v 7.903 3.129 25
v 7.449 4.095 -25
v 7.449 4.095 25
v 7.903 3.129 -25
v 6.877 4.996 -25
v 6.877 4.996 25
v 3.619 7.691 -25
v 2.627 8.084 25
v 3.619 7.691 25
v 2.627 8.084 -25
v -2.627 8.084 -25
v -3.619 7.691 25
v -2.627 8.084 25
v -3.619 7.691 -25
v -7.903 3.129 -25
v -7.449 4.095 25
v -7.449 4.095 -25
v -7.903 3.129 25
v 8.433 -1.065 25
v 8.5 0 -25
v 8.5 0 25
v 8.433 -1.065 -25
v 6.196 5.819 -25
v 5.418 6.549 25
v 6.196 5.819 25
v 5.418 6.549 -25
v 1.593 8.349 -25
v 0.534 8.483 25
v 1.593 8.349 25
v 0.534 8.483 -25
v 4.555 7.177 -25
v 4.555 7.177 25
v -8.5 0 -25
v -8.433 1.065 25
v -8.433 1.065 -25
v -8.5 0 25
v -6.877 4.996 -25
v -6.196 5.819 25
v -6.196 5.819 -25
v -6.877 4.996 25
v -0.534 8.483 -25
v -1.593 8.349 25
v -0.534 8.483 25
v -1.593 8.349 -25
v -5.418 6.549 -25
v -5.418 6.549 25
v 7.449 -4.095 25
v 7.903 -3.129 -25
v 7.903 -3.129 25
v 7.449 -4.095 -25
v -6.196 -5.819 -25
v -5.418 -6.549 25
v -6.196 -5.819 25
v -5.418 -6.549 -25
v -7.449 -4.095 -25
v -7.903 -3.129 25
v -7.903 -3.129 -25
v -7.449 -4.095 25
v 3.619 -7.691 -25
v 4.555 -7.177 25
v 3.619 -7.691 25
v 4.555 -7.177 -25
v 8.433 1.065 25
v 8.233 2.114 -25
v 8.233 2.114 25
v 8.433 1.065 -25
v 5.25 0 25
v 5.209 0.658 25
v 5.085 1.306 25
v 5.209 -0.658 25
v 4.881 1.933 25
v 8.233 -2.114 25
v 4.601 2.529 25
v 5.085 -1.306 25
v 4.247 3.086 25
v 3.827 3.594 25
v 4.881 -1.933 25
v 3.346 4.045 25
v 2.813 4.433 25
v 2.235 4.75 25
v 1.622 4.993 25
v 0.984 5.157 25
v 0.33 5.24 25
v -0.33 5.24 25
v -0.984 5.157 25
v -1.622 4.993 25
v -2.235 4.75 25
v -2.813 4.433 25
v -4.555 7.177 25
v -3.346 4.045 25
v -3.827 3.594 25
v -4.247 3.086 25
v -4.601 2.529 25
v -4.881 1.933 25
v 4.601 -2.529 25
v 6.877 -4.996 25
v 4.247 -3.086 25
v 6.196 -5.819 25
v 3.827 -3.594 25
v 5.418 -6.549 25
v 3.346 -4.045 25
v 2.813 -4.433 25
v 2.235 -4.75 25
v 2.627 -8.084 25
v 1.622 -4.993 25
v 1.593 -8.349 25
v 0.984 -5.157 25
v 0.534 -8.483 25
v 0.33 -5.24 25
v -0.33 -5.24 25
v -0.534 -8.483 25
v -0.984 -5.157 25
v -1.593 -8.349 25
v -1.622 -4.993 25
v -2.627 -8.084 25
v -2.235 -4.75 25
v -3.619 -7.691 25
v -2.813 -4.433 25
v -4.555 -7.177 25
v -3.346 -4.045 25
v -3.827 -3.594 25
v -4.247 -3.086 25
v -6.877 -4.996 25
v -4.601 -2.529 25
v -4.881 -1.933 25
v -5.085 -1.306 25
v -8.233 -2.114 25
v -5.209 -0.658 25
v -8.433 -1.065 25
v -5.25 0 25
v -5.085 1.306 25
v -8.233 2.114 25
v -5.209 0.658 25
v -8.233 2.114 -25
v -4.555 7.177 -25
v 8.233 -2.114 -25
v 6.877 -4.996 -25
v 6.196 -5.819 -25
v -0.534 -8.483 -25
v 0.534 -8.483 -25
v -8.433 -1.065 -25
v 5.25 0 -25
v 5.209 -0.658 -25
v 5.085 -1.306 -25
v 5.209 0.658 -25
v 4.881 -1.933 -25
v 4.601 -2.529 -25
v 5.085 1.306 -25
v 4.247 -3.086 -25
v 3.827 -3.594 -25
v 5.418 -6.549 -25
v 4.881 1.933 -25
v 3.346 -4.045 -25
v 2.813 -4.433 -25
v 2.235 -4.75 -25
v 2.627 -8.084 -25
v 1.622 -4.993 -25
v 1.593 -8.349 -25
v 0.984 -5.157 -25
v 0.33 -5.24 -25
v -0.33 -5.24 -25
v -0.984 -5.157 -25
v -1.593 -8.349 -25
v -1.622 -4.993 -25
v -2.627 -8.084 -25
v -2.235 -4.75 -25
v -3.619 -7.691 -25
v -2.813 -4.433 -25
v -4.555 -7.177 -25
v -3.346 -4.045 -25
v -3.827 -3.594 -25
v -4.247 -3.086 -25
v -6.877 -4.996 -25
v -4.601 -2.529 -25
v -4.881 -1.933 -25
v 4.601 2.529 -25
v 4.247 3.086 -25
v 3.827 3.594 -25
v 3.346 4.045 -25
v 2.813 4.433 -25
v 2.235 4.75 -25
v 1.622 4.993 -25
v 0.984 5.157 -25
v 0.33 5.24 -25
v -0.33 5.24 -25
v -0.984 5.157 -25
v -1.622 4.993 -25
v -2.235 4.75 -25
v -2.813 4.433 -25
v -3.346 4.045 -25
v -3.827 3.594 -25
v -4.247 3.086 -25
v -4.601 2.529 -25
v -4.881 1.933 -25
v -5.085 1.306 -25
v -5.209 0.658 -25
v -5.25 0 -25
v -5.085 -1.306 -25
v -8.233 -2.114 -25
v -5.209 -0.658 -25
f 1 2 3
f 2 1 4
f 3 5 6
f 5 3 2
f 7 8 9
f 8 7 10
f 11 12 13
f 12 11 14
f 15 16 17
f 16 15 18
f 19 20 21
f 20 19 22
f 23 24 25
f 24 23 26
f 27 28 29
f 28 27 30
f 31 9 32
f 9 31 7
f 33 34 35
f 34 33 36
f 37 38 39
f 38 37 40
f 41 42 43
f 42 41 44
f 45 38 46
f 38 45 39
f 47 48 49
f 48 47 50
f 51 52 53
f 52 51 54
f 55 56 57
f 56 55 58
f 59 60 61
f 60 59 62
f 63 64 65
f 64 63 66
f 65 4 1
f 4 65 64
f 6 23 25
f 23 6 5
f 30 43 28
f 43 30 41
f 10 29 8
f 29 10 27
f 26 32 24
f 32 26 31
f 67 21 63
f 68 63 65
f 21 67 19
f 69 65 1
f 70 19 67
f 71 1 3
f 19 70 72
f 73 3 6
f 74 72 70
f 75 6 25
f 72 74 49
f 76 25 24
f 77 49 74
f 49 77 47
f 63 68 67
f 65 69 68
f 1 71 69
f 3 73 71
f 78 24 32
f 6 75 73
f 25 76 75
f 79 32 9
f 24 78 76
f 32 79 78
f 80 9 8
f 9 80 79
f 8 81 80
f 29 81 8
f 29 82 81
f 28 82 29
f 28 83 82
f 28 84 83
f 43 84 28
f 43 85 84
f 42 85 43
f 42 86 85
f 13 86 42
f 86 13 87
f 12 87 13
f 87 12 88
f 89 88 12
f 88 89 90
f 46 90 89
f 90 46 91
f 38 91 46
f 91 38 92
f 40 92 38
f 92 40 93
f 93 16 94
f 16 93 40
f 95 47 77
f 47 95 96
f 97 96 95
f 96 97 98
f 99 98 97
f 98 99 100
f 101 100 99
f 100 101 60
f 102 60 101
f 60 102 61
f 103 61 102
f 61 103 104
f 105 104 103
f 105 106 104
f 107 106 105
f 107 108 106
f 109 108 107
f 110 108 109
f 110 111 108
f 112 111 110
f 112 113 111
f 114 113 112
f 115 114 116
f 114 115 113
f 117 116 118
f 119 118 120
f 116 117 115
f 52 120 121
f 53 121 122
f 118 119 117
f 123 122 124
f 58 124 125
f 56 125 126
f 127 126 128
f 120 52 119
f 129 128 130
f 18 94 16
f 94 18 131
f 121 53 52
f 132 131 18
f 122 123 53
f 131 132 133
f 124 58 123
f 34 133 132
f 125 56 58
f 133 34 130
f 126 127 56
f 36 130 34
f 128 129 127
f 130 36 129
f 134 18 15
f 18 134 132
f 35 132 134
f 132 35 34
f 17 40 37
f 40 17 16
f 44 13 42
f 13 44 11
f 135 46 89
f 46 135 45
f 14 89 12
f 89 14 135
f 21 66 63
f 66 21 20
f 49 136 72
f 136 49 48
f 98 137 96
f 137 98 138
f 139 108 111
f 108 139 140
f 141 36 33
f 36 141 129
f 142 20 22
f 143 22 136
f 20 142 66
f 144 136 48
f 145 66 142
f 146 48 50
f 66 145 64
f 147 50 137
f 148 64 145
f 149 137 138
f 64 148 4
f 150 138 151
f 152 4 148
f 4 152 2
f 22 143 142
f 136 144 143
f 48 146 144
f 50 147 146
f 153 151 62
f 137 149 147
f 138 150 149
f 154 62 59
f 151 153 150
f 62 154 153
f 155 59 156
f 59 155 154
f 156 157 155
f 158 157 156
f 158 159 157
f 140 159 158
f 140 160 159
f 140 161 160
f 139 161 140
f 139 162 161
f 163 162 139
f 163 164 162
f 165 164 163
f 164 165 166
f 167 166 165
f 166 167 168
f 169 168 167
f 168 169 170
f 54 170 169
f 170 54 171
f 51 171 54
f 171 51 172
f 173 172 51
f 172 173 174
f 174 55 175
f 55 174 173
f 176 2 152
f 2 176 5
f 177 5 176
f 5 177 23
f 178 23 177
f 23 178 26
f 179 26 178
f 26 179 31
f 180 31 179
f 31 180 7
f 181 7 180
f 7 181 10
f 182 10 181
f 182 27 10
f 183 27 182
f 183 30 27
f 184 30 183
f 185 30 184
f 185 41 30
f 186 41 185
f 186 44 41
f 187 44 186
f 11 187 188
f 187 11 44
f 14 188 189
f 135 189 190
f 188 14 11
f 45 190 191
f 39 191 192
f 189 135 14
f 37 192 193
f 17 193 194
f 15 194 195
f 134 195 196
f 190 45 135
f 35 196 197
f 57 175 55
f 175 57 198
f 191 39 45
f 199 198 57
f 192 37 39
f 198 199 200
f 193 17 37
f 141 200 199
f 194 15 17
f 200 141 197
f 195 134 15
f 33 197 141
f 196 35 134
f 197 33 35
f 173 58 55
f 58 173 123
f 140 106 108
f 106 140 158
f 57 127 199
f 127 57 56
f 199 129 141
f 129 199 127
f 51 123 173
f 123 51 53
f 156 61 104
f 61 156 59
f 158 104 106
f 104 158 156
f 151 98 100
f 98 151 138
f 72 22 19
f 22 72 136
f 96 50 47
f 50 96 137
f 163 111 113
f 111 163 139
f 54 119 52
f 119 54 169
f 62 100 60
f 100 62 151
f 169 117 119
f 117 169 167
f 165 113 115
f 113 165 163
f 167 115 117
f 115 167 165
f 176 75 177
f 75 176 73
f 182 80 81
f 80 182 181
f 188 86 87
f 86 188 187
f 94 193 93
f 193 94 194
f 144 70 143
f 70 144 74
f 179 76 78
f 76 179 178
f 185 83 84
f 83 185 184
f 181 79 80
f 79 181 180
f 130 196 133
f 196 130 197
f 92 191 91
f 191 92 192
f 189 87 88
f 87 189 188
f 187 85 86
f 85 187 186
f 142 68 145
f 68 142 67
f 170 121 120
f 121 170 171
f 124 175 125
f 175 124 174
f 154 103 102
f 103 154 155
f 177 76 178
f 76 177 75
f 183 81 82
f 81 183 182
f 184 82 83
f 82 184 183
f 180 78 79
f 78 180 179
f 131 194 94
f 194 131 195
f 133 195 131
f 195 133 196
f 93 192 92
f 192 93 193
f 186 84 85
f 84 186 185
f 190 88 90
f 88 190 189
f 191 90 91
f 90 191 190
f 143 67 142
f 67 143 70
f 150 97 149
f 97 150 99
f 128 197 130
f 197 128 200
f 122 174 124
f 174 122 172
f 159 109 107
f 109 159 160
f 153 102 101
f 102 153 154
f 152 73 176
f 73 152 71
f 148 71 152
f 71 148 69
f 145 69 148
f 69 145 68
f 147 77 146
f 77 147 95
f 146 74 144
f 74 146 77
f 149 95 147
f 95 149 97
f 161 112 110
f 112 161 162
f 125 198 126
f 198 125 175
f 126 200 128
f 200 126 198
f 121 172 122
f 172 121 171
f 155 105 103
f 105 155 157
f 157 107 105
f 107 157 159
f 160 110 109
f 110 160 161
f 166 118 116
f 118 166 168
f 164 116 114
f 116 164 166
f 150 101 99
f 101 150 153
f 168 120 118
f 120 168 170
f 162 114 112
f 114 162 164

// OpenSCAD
$fn = 50;


difference() {
	union() {
		translate(v = [0, 0, -25.0000000000]) {
			cylinder(h = 50, r = 8.5000000000);
		}
	}
	union() {
		translate(v = [0, 0, -100.0000000000]) {
			cylinder(h = 200, r = 5.2500000000);
		}
	}
}
